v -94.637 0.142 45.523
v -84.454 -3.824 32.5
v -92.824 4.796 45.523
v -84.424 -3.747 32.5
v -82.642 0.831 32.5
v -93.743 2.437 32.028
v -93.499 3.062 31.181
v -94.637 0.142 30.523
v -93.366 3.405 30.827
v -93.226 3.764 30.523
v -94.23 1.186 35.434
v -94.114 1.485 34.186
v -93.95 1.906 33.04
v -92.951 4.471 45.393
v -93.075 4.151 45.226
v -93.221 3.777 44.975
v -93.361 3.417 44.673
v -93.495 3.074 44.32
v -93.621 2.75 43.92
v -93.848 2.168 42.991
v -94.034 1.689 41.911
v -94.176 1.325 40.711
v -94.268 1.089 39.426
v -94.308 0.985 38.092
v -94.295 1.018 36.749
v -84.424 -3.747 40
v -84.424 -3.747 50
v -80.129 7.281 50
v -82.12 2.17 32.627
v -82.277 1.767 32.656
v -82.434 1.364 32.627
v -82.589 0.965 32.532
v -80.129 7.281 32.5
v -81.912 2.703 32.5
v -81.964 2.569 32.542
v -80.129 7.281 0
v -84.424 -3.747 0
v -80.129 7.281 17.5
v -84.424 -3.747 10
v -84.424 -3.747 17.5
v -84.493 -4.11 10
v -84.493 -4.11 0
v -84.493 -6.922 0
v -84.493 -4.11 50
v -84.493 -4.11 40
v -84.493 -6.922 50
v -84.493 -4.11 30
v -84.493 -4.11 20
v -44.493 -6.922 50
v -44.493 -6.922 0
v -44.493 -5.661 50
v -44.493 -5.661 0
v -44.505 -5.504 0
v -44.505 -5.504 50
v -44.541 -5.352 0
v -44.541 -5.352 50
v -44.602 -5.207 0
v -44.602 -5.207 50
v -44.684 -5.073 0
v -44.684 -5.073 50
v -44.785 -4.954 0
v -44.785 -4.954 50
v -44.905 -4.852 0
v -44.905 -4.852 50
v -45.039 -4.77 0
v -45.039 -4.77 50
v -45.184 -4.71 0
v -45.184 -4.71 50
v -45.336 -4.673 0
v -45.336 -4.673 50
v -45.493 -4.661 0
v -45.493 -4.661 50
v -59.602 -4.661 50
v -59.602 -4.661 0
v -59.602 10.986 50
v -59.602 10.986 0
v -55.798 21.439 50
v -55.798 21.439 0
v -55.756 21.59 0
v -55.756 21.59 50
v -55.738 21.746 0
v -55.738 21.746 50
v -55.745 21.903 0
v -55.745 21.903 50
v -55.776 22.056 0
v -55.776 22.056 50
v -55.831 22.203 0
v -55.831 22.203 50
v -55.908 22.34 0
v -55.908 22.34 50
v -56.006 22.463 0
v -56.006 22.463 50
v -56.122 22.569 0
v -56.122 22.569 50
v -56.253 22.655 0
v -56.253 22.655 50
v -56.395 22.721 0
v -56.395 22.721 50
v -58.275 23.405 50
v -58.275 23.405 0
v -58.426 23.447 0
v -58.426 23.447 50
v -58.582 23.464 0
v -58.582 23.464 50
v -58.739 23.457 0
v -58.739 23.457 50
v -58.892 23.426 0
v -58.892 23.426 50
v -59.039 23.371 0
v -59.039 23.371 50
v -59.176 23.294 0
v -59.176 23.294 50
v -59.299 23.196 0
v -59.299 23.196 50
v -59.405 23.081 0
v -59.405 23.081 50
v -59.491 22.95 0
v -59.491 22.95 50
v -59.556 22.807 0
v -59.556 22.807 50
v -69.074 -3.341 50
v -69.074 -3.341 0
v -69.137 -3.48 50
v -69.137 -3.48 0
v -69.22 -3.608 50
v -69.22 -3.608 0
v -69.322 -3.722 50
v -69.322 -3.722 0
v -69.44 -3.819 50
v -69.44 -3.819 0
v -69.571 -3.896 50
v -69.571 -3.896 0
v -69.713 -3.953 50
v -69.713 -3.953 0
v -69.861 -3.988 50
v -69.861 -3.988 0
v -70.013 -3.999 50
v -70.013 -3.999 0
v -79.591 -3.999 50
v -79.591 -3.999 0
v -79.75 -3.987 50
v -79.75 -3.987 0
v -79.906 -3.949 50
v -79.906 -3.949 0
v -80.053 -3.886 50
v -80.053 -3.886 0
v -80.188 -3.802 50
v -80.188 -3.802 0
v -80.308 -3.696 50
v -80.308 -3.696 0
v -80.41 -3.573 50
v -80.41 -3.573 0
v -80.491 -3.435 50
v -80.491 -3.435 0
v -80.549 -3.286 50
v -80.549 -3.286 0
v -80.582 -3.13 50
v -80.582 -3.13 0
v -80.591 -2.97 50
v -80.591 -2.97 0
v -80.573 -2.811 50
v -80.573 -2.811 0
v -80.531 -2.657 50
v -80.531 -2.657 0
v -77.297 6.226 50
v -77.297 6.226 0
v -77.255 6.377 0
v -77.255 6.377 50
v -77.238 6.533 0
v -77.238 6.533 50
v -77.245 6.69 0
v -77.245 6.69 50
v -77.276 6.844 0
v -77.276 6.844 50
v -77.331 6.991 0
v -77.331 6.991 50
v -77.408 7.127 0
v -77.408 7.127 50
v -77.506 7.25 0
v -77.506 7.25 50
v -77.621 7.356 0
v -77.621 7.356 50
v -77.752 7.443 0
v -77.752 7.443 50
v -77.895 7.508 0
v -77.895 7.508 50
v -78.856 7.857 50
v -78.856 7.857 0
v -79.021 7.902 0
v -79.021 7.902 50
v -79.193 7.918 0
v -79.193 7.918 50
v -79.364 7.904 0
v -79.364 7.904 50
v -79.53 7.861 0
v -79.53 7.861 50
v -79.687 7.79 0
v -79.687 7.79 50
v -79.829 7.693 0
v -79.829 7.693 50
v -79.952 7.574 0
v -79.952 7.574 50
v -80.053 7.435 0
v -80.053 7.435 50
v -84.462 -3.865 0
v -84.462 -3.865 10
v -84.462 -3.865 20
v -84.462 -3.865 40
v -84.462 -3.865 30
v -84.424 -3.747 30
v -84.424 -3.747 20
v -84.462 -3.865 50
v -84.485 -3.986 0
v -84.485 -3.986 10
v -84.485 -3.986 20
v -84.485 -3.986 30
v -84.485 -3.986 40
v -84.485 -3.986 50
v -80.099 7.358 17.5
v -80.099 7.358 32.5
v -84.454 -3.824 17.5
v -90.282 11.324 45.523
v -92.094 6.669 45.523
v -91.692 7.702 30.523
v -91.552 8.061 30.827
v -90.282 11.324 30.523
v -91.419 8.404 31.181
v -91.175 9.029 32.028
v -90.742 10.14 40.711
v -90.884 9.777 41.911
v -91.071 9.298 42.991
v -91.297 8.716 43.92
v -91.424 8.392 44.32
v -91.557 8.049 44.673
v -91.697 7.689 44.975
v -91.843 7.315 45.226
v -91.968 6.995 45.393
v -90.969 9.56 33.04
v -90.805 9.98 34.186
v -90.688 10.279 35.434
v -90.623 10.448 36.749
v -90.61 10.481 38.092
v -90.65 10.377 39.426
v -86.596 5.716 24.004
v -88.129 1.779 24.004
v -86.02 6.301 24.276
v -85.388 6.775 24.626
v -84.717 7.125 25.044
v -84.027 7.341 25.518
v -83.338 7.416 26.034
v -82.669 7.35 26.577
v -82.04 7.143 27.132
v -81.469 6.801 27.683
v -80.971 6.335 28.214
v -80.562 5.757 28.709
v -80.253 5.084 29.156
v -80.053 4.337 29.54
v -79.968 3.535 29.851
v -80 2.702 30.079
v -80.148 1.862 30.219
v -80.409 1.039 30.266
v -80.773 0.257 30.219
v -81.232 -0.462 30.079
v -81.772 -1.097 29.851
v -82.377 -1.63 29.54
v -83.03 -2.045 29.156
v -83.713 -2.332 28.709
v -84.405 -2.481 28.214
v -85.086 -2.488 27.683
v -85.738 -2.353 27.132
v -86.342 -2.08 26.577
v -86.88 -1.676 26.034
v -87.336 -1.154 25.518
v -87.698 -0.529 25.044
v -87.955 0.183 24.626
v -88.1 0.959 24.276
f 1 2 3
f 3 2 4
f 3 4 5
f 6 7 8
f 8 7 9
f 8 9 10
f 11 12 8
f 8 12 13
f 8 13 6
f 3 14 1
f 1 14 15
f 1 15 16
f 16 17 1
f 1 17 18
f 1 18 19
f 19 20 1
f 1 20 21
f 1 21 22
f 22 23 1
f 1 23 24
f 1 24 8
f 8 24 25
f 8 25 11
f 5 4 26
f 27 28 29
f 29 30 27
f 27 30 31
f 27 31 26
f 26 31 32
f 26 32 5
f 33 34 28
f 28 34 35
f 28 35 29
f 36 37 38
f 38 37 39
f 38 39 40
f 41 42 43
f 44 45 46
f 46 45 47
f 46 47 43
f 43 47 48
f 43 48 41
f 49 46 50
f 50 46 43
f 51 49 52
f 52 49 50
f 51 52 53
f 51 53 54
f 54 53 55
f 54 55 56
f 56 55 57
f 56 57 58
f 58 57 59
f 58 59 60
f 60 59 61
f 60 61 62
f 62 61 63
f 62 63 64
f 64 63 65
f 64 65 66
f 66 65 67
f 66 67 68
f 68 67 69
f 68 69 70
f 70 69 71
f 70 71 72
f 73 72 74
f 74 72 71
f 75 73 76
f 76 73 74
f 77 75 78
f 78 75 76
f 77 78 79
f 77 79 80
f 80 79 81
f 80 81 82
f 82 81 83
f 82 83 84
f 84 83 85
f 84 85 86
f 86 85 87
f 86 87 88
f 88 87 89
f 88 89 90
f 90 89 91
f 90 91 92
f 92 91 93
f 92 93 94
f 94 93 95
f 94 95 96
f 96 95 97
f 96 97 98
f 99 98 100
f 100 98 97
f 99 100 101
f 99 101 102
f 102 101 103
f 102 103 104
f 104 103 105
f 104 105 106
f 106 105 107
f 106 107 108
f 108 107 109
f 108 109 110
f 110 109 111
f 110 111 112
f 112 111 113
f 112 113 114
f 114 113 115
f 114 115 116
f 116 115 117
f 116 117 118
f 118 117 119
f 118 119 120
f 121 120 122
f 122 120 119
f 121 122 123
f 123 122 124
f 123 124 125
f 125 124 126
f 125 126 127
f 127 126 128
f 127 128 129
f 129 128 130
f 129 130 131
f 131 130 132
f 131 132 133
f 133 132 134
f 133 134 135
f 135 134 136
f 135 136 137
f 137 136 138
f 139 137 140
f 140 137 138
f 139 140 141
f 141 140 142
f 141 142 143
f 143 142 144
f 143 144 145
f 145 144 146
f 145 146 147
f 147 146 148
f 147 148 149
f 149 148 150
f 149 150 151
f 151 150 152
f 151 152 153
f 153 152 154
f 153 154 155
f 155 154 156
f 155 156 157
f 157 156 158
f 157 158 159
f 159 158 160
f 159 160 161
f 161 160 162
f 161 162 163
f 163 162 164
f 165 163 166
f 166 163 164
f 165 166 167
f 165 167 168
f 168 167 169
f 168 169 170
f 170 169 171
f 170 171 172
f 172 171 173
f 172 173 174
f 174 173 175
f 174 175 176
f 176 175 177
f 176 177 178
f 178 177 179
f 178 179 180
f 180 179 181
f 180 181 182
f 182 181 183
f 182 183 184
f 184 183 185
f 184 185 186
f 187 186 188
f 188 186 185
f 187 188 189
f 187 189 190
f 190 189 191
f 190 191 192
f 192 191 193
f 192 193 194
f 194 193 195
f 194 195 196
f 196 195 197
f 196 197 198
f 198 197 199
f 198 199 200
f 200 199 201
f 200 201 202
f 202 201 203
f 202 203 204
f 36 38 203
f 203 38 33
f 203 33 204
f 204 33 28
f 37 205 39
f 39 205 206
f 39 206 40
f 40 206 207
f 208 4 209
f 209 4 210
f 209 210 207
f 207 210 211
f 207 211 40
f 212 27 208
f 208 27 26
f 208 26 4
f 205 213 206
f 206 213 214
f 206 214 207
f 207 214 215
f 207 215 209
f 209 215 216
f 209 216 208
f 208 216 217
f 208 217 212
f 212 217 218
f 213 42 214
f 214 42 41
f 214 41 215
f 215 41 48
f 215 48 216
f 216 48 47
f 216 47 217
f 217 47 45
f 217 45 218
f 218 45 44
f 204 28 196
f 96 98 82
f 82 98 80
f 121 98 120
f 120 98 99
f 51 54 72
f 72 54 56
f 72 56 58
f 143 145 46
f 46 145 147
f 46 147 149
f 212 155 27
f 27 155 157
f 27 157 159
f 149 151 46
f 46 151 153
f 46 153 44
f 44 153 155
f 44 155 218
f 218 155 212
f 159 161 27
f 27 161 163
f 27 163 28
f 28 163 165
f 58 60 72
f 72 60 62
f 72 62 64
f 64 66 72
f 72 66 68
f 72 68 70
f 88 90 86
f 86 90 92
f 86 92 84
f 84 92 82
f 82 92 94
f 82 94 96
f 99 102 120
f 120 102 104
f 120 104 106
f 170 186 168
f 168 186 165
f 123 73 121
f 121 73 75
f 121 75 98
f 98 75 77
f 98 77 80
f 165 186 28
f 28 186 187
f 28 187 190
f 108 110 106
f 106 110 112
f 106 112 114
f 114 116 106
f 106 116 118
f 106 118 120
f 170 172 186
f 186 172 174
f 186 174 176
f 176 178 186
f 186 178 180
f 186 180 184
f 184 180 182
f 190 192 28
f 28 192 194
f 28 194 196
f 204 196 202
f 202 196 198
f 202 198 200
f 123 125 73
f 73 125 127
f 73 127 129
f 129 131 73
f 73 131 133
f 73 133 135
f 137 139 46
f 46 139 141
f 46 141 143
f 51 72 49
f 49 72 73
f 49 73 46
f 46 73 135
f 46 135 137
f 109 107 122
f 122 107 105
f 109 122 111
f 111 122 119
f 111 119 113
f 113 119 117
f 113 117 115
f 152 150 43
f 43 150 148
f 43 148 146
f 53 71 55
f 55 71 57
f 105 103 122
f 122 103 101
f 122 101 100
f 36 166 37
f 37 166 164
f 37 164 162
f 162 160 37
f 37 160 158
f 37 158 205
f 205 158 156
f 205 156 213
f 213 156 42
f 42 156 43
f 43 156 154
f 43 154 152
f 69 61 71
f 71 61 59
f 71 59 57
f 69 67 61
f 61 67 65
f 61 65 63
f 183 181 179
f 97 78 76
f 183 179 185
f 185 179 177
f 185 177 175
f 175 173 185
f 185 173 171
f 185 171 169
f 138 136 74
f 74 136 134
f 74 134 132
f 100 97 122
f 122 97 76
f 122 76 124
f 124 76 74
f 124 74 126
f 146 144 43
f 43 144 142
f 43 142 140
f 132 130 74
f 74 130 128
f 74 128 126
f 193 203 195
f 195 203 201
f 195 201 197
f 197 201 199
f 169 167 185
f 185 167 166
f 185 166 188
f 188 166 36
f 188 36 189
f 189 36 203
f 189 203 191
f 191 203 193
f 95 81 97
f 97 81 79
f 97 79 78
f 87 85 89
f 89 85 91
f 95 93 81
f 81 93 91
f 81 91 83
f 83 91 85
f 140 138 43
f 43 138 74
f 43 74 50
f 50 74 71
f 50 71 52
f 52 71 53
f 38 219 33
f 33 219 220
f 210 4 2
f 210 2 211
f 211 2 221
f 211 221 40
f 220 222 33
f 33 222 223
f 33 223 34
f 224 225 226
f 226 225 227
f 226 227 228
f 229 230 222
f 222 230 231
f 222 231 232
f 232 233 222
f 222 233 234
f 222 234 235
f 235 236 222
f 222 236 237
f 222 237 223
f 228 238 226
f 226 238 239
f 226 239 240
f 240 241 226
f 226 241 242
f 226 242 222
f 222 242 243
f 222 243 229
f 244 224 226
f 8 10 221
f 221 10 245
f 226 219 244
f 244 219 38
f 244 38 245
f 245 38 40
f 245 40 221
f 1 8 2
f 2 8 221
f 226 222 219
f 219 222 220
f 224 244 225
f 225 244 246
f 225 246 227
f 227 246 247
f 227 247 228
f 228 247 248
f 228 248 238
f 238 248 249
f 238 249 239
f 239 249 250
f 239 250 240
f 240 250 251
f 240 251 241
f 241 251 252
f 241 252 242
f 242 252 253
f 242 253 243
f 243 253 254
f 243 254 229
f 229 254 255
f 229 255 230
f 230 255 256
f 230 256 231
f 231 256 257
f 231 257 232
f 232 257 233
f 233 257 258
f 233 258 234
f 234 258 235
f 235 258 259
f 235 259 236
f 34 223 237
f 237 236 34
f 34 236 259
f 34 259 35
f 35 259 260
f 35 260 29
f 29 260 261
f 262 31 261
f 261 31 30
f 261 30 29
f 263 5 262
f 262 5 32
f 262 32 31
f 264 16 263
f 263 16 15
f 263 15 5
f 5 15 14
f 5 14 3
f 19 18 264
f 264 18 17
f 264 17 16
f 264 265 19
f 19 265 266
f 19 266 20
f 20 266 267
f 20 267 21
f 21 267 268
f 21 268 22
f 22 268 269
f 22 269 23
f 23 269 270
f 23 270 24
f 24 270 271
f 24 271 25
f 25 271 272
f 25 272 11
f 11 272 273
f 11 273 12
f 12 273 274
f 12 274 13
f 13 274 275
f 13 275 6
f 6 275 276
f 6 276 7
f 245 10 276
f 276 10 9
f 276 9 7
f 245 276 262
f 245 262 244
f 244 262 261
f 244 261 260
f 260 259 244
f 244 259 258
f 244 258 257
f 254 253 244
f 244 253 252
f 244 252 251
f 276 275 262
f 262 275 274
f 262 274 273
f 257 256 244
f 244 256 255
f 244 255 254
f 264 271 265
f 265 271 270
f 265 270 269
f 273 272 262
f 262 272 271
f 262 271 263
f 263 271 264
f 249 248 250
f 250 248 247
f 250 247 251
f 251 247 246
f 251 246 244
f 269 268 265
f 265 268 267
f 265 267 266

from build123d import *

# Parameters (mm, degrees)
SALIENTE_EXTRUIR1_DEPTH      = 50
SALIENTE_EXTRUIR3_DEPTH      = 1
SALIENTE_EXTRUIR3_DEPTH_BACK = 11
CROQUIS8_R                   = 5.1
CORTAR_EXTRUIR1_DEPTH        = 20


with BuildPart() as part:
    # Croquis1 → Saliente-Extruir1 (new body)
    with BuildSketch(Plane.XY):
        with BuildLine():
            Line((-84.492533904, -6.921751872), (-44.492533904, -6.921751872))
            Line((-44.492533904, -6.921751872), (-44.492533904, -5.660932217))
            ThreePointArc((-44.492533904, -5.660932217), (-44.785427123, -4.953825435), (-45.492533904, -4.660932217))
            Line((-45.492533904, -4.660932217), (-59.602097354, -4.660932217))
            Line((-59.602097354, -4.660932217), (-59.602097354, 10.986403293))
            Line((-59.602097354, 10.986403293), (-55.79772825, 21.438821499))
            ThreePointArc((-55.79772825, 21.438821499), (-55.831113084, 22.203459904), (-56.395400728, 22.720534263))
            Line((-56.395400728, 22.720534263), (-58.274785969, 23.40457455))
            ThreePointArc((-58.274785969, 23.40457455), (-59.039424374, 23.371189716), (-59.556498733, 22.806902073))
            Line((-59.556498733, 22.806902073), (-69.073702494, -3.341400356))
            ThreePointArc((-69.073702494, -3.341400356), (-69.439818678, -3.818532257), (-70.013395115, -3.999380213))
            Line((-70.013395115, -3.999380213), (-79.590995067, -3.999380213))
            ThreePointArc((-79.590995067, -3.999380213), (-80.410147111, -3.572956649), (-80.530687688, -2.657360069))
            Line((-80.530687688, -2.657360069), (-77.297371662, 6.226102703))
            ThreePointArc((-77.297371662, 6.226102703), (-77.330756495, 6.990741108), (-77.895044139, 7.507815467))
            Line((-77.895044139, 7.507815467), (-78.855503706, 7.857394161))
            ThreePointArc((-78.855503706, 7.857394161), (-79.609989894, 7.828674516), (-80.129339821, 7.280632657))
            Line((-80.129339821, 7.280632657), (-84.424349875, -3.746691195))
            ThreePointArc((-84.424349875, -3.746691195), (-84.475340083, -3.924982082), (-84.492533904, -4.109622312))
            Line((-84.492533904, -4.109622312), (-84.492533904, -6.921751872))
        make_face()
    extrude(amount=SALIENTE_EXTRUIR1_DEPTH)

    # Croquis5 → Saliente-Extruir3 (add, two sides)
    with BuildSketch(Plane(origin=(-12.054515952, -30.949648451, 0), x_dir=(0, 0, 1), z_dir=(-0.362931117, -0.931815971, 0))) as saliente_extruir3_sk:
        Polygon((17.5, 77.308166751), (30.522755533, 88.235556115), (45.522755533, 88.235556115), (32.5, 77.308166751), align=None)
    extrude(amount=SALIENTE_EXTRUIR3_DEPTH)
    extrude(saliente_extruir3_sk.sketch, amount=-SALIENTE_EXTRUIR3_DEPTH_BACK)

    # Croquis8 → Cortar-Extruir1 (cut)
    with BuildSketch(Plane(origin=(-54.858231018, 21.366621399, 70.161379414), x_dir=(0.800779124, 0.174492436, 0.572979218), z_dir=(-0.598959761, 0.233287625, 0.766044443))):
        with Locations((-51.412419204, -5.511649837)):
            Circle(CROQUIS8_R)
    extrude(amount=-CORTAR_EXTRUIR1_DEPTH, mode=Mode.SUBTRACT)


solid = part.part
